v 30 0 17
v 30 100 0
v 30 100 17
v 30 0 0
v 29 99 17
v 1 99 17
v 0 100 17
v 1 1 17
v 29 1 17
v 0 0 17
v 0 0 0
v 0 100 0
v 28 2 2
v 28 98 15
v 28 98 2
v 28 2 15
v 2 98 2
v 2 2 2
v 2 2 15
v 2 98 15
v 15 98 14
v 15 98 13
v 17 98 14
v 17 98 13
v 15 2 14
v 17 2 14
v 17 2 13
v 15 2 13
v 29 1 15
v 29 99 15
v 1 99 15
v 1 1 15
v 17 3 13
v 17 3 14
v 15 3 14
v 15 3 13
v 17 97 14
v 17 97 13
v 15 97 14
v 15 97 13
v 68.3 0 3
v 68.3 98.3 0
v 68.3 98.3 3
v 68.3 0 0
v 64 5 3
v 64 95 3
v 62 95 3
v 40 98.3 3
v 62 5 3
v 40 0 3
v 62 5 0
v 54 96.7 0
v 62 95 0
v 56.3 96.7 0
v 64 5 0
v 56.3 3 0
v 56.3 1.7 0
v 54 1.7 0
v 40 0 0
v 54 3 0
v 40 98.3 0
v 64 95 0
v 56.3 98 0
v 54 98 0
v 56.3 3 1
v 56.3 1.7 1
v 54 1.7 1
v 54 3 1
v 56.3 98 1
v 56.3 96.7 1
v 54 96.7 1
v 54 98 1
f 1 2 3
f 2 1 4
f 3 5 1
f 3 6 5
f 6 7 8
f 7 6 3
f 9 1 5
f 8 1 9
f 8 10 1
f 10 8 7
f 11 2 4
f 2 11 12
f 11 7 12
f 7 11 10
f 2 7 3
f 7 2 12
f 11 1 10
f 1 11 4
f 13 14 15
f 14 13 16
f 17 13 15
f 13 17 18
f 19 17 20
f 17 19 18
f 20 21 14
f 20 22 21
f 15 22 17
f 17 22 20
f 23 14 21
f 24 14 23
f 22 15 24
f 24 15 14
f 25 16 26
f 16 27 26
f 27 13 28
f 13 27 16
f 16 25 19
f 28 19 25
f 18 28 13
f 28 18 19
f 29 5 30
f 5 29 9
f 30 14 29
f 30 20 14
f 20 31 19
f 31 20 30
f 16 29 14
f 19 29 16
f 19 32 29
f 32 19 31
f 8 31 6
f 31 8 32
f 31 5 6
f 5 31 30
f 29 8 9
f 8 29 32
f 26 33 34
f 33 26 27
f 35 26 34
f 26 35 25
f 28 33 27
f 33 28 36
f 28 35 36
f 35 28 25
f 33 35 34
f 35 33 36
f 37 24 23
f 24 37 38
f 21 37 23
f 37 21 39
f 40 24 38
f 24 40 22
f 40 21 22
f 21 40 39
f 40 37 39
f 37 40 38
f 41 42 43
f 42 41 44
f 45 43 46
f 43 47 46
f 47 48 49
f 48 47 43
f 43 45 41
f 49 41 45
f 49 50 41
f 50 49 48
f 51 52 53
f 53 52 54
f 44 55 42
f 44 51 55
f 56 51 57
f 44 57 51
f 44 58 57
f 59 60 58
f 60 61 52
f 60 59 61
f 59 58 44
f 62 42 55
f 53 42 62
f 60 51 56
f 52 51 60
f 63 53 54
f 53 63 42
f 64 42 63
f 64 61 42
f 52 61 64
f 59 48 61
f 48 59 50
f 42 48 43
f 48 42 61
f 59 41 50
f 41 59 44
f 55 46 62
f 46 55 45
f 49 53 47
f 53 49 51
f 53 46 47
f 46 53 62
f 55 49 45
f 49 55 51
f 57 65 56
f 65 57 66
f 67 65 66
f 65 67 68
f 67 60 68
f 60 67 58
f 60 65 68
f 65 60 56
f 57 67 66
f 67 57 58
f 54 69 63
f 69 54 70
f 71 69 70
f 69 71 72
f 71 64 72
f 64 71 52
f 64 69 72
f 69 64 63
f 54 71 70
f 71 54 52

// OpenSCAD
// Gehäuse für Schiebepotentiometer
// Maße in mm

// Gehäuse-Parameter
breite = 30;      // 3cm
laenge = 100;     // 10cm
hoehe = 17;       // 1.7cm
wandstaerke = 2;  // Wandstärke
spiel = 0.3;      // Toleranz für Passung

// Deckel-Parameter
deckel_hoehe = 3;
schlitz_breite = 2;
schlitz_laenge = 90;  // 9cm
schlitz_abstand = 22; // 2.2cm von der Seite
nut_tiefe = 2;    // Tiefe der Nut
nut_breite = 1;   // Breite der Nut

// Hauptgehäuse
module gehaeuse() {
    color([0.65, 0.08, 0.12]) {  // Farbe Rot für das Gehäuse
        difference() {
            // Äußere Hülle
            cube([breite, laenge, hoehe]);
            
            // Innere Aussparung
            translate([wandstaerke, wandstaerke, wandstaerke])
            cube([breite-2*wandstaerke, laenge-2*wandstaerke, hoehe-wandstaerke+1]);
            
            // Nut für Deckel
            translate([wandstaerke/2, wandstaerke/2, hoehe-nut_tiefe])
            cube([breite-wandstaerke, laenge-wandstaerke, nut_tiefe+1]);
        }
        
        // Rastnasen für Deckel
        translate([breite/2, wandstaerke, hoehe-deckel_hoehe-1])
        cube([2, 1, 1]);
        translate([breite/2, laenge-wandstaerke-1, hoehe-deckel_hoehe-1])
        cube([2, 1, 1]);
    }
}

// Deckel
module deckel() {
    translate([40, 0, 0]) {  // Verschoben zur besseren Sicht
        color([0.65, 0.08, 0.12]) {  // Farbe Rot für den Deckel
            difference() {
                // Hauptplatte
                cube([breite-wandstaerke+spiel, laenge-wandstaerke+spiel, deckel_hoehe]);
                
                // Schlitz
                translate([schlitz_abstand, 5, -1])
                cube([schlitz_breite, schlitz_laenge, deckel_hoehe+2]);
                
                // Aussparungen für Rastnasen
                translate([breite/2-wandstaerke/2, wandstaerke-spiel, -1])
                cube([2+spiel, 1+spiel, 2]);
                translate([breite/2-wandstaerke/2, laenge-wandstaerke-1-spiel, -1])
                cube([2+spiel, 1+spiel, 2]);
            }
        }
    }
}

// Zusammenbau
gehaeuse();
deckel();
